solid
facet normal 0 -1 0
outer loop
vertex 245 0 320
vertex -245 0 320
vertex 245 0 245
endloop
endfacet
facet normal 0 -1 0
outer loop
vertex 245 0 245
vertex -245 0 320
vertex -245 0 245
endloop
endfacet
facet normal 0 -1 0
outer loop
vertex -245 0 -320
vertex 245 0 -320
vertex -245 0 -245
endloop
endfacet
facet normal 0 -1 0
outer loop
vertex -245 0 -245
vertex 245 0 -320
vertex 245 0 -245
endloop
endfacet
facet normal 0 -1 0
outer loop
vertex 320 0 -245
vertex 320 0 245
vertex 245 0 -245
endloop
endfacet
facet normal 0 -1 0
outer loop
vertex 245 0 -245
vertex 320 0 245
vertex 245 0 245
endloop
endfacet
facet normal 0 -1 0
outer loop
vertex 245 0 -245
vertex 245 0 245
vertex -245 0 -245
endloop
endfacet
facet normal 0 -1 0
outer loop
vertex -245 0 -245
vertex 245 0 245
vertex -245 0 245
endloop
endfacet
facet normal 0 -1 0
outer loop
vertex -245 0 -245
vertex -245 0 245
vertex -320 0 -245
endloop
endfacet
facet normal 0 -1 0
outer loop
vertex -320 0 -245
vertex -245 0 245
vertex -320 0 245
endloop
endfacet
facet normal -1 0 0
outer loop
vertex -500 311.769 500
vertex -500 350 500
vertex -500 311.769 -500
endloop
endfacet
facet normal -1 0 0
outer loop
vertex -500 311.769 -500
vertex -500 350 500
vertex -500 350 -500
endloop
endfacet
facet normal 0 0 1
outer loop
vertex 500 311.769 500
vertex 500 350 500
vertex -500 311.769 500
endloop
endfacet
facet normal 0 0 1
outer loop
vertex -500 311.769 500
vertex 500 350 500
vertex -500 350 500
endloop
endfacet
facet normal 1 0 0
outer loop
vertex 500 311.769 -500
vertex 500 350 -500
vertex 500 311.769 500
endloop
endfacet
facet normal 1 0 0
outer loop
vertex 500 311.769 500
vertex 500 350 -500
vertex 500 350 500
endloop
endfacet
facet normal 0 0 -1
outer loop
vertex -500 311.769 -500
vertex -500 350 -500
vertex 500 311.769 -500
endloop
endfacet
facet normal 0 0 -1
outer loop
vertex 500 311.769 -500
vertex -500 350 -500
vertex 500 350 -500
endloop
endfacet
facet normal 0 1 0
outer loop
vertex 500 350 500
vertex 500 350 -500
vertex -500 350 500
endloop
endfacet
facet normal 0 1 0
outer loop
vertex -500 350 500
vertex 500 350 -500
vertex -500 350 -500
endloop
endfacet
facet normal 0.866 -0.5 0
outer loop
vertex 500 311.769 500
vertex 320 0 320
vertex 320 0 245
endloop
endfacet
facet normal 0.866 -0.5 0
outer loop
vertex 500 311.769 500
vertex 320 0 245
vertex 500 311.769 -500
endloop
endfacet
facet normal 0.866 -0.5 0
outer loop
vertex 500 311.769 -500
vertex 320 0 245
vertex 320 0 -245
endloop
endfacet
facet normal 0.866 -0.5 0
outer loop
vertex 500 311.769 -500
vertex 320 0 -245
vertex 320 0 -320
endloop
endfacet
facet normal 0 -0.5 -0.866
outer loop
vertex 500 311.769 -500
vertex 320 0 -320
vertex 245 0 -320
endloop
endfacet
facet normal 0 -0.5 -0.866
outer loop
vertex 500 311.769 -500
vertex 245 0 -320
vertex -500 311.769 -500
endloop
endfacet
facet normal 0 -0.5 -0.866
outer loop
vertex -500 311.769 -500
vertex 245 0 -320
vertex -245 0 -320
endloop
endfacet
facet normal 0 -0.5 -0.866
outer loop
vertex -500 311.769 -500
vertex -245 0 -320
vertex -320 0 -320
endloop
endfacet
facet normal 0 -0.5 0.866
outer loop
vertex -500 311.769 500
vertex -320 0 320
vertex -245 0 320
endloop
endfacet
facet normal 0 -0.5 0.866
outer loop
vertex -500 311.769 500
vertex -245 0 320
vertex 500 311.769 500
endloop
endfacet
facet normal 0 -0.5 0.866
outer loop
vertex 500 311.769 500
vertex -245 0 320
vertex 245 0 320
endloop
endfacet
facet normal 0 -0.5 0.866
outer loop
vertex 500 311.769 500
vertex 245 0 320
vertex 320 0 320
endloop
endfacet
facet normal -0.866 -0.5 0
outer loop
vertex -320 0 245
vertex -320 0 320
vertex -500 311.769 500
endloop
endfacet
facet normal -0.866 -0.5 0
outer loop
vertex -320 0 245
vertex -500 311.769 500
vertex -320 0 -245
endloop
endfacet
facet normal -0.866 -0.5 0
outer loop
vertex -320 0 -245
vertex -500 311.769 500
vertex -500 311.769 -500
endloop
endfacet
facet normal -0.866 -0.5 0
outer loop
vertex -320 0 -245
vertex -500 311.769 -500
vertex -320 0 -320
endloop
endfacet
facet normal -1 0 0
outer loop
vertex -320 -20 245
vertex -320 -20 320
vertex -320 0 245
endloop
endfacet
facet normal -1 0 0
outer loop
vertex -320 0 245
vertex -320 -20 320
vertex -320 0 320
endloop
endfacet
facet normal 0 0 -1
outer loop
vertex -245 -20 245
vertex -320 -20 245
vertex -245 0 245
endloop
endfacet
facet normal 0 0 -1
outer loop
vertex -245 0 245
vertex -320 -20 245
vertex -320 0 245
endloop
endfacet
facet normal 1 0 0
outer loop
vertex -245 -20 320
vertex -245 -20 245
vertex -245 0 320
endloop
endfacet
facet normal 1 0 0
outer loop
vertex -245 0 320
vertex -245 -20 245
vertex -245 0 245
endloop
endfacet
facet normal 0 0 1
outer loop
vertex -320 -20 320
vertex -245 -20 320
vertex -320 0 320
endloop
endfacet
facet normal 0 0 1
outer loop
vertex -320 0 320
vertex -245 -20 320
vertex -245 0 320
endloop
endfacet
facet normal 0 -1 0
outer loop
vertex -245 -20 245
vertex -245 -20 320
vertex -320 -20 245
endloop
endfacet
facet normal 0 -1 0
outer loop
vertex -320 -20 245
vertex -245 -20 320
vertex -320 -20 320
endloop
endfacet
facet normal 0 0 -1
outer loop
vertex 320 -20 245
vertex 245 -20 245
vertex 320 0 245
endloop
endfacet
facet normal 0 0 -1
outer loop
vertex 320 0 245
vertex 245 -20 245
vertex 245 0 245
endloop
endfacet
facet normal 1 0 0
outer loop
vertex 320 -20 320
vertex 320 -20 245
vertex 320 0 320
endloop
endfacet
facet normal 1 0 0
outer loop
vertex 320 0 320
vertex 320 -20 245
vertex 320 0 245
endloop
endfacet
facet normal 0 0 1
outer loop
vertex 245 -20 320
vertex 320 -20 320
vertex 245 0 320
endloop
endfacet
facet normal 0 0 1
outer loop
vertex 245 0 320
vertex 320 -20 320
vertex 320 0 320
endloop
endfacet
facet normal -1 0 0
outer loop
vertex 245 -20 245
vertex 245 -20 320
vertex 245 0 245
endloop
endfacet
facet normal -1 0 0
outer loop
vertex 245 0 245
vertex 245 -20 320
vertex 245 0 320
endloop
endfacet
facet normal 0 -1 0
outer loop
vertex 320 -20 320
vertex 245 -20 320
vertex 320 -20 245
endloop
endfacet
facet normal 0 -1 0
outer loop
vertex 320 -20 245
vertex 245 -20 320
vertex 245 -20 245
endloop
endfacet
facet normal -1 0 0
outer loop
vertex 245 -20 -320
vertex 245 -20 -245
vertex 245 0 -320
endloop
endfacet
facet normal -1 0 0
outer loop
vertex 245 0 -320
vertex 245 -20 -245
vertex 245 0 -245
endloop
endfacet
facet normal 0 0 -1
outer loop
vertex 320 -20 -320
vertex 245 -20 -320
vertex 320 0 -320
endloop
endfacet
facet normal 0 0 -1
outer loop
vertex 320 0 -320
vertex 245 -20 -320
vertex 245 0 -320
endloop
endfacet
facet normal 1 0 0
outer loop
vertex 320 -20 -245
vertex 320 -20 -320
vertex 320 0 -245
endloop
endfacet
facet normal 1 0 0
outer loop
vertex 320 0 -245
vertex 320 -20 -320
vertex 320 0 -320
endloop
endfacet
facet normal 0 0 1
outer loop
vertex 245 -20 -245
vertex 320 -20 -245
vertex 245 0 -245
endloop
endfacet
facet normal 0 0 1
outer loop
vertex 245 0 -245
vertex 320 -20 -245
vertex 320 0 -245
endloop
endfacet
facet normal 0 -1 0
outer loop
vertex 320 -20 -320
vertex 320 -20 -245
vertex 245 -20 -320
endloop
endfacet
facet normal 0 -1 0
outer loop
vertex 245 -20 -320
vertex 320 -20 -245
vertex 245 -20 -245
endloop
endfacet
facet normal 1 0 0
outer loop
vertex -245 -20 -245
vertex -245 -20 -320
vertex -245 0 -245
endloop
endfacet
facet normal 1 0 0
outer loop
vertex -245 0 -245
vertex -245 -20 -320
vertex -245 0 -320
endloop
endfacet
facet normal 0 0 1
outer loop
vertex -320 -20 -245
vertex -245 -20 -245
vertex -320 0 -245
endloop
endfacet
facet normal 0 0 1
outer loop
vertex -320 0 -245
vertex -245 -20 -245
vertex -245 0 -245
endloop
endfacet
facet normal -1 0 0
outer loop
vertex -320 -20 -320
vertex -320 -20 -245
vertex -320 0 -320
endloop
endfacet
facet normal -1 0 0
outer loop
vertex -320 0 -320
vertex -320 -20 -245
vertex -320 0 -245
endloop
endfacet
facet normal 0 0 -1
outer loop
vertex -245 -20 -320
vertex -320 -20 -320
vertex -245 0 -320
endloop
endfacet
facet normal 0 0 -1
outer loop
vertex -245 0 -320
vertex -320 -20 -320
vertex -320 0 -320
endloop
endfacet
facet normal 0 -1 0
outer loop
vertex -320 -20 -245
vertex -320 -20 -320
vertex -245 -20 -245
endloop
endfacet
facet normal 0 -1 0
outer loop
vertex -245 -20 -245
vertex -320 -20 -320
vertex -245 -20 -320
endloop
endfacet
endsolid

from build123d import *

# Parameters (mm, degrees)
CROQUIS1_W              = 1000
CROQUIS1_H              = 1000
SALIENTE_EXTRUIR1_DEPTH = 350
CHAFL_N1_SIZE           = 180
CHAFL_N1_SIZE2          = 311.769145362
CROQUIS2_W              = 75
CROQUIS2_H              = 75
SALIENTE_EXTRUIR2_DEPTH = 20


with BuildPart() as part:
    # Croquis1 → Saliente-Extruir1 (new body)
    with BuildSketch(Plane(origin=(0, 0, 0), x_dir=(1, 0, 0), z_dir=(0, 1, 0))):
        Rectangle(CROQUIS1_W, CROQUIS1_H)
    extrude(amount=SALIENTE_EXTRUIR1_DEPTH)

    # Chaflán1
    chafl_n1_edges = [part.edges().sort_by_distance(p)[0] for p in [
        (0, 0, -500),
        (500, 0, 0),
        (0, 0, 500),
        (-500, 0, 0),
    ]]
    chafl_n1_side = [part.faces().sort_by_distance(p)[0] for p in [
        (0, 0, 0),
    ]]
    chamfer(chafl_n1_edges, length=CHAFL_N1_SIZE, length2=CHAFL_N1_SIZE2, reference=chafl_n1_side[0])

    # Croquis2 → Saliente-Extruir2 (add)
    with BuildSketch(Plane.XZ):
        with Locations((-282.5, 282.5)):
            Rectangle(CROQUIS2_W, CROQUIS2_H)
        with Locations((282.5, 282.5)):
            Rectangle(CROQUIS2_W, CROQUIS2_H)
        with Locations((282.5, -282.5)):
            Rectangle(CROQUIS2_W, CROQUIS2_H)
        with Locations((-282.5, -282.5)):
            Rectangle(CROQUIS2_W, CROQUIS2_H)
    extrude(amount=SALIENTE_EXTRUIR2_DEPTH)


solid = part.part
